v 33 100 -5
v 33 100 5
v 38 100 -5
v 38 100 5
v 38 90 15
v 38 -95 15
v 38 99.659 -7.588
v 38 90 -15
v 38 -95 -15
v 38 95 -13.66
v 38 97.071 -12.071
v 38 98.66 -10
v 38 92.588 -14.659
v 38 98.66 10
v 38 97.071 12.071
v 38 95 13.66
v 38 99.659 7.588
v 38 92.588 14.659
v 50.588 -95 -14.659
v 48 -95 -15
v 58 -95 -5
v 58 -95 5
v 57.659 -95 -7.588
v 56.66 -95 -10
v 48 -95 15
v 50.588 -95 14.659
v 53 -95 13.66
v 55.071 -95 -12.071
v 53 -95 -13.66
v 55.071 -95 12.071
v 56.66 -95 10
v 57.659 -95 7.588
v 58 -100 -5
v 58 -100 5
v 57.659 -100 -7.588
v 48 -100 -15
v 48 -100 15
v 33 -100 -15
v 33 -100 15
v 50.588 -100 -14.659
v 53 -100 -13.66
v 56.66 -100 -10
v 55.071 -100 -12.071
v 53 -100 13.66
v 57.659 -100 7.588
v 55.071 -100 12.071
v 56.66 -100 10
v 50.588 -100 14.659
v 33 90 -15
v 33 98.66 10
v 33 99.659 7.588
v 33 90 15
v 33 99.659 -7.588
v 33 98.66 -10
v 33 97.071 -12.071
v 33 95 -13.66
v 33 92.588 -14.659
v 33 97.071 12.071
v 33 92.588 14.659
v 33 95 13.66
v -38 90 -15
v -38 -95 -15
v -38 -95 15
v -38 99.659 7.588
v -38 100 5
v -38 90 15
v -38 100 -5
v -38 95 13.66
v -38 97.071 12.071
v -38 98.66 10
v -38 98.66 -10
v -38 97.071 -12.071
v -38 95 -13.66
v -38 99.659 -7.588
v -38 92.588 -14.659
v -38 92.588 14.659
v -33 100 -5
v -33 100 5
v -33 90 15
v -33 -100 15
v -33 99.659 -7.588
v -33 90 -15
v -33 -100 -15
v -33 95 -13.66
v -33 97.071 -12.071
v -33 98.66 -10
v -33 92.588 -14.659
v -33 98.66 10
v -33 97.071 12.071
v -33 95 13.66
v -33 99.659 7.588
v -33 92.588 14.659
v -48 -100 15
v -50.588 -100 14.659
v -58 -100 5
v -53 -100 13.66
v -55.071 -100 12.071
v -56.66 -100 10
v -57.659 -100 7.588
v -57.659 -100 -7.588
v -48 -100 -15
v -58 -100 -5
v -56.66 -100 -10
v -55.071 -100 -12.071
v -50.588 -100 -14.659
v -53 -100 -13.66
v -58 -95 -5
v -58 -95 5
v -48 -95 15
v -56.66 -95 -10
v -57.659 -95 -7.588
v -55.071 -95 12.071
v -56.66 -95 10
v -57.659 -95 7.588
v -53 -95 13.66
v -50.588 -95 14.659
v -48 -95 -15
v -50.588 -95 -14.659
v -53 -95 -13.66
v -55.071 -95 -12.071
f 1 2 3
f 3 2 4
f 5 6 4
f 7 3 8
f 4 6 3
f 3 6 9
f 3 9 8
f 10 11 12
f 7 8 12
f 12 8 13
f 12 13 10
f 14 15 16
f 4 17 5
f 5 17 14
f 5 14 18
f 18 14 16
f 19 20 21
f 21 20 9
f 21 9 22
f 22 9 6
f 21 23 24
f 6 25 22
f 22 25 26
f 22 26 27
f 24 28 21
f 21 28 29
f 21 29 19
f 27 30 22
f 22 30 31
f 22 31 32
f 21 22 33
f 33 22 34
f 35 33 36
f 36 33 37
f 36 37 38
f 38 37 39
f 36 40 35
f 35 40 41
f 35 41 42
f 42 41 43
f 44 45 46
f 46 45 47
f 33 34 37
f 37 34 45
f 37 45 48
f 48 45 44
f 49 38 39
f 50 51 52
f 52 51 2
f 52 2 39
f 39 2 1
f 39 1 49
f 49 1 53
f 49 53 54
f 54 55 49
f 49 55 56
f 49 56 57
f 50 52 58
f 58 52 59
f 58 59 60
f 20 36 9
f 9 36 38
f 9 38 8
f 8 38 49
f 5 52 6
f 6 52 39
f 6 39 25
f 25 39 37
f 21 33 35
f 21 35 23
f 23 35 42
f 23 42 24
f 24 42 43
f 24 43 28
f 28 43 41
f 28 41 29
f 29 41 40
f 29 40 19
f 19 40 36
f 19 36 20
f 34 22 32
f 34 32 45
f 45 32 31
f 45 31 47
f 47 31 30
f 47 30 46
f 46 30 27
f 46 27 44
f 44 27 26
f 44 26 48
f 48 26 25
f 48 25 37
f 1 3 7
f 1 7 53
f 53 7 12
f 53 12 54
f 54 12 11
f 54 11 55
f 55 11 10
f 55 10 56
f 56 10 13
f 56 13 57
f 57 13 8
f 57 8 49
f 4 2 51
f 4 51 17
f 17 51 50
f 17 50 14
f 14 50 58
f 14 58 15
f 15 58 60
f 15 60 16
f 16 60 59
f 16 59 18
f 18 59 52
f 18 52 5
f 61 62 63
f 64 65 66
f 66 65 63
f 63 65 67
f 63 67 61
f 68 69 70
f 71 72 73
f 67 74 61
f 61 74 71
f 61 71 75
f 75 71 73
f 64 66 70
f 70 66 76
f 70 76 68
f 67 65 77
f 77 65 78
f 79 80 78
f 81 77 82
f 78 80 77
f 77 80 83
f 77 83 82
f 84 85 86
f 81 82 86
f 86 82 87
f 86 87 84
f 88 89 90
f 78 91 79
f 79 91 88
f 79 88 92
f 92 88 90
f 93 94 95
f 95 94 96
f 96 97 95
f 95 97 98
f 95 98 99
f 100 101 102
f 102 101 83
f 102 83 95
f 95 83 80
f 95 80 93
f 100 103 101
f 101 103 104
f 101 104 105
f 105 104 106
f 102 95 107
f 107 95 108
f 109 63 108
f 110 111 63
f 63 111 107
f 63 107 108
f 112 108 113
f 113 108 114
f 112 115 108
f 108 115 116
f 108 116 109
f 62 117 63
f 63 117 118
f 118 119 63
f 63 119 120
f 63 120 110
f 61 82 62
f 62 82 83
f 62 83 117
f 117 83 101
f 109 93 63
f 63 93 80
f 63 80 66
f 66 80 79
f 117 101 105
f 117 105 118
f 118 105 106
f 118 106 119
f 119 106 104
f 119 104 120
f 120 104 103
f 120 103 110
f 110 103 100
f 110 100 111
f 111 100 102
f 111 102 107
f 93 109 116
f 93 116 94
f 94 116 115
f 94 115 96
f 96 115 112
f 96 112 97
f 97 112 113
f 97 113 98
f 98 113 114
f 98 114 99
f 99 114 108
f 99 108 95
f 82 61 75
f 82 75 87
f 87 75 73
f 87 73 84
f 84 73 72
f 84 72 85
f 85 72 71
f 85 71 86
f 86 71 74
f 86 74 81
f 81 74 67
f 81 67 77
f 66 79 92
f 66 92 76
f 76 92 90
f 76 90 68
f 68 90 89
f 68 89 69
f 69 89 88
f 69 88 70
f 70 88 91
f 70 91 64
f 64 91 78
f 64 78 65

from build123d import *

# Parameters (mm, degrees)
BOSS_EXTRUDE3_DEPTH        = 15
BOSS_EXTRUDE3_DEPTH_BACK   = 15
BOSS_EXTRUDE3_2_DEPTH      = 15
BOSS_EXTRUDE3_2_DEPTH_BACK = 15
FILLET1_R                  = 10
FILLET2_R                  = 10


with BuildPart() as part:
    # Sketch5 → Boss-Extrude3 (new, two sides: drawn at the far end of the back side and taken through both)
    with BuildSketch(Plane.XY.offset(-BOSS_EXTRUDE3_DEPTH_BACK)):
        Polygon((33, 100), (33, -100), (58, -100), (58, -95), (38, -95), (38, 100), align=None)
    extrude(amount=BOSS_EXTRUDE3_DEPTH + BOSS_EXTRUDE3_DEPTH_BACK)

    # Fillet1
    fillet1_edges = [part.edges().sort_by_distance(p)[0] for p in [
        (58, -97.5, -15),
        (35.5, 100, 15),
        (58, -97.5, 15),
        (35.5, 100, -15),
    ]]
    fillet(fillet1_edges, radius=FILLET1_R)


with BuildPart() as body_2:
    # Sketch5 → Boss-Extrude3 2 (new, two sides: drawn at the far end of the back side and taken through both)
    with BuildSketch(Plane.XY.offset(-BOSS_EXTRUDE3_2_DEPTH_BACK)):
        Polygon((-38, 100), (-33, 100), (-33, -100), (-58, -100), (-58, -95), (-38, -95), align=None)
    extrude(amount=BOSS_EXTRUDE3_2_DEPTH + BOSS_EXTRUDE3_2_DEPTH_BACK)

    # Fillet2
    fillet2_edges = [body_2.edges().sort_by_distance(p)[0] for p in [
        (-58, -97.5, -15),
        (-58, -97.5, 15),
        (-35.5, 100, -15),
        (-35.5, 100, 15),
    ]]
    fillet(fillet2_edges, radius=FILLET2_R)


solid = Compound([part.part, body_2.part])
